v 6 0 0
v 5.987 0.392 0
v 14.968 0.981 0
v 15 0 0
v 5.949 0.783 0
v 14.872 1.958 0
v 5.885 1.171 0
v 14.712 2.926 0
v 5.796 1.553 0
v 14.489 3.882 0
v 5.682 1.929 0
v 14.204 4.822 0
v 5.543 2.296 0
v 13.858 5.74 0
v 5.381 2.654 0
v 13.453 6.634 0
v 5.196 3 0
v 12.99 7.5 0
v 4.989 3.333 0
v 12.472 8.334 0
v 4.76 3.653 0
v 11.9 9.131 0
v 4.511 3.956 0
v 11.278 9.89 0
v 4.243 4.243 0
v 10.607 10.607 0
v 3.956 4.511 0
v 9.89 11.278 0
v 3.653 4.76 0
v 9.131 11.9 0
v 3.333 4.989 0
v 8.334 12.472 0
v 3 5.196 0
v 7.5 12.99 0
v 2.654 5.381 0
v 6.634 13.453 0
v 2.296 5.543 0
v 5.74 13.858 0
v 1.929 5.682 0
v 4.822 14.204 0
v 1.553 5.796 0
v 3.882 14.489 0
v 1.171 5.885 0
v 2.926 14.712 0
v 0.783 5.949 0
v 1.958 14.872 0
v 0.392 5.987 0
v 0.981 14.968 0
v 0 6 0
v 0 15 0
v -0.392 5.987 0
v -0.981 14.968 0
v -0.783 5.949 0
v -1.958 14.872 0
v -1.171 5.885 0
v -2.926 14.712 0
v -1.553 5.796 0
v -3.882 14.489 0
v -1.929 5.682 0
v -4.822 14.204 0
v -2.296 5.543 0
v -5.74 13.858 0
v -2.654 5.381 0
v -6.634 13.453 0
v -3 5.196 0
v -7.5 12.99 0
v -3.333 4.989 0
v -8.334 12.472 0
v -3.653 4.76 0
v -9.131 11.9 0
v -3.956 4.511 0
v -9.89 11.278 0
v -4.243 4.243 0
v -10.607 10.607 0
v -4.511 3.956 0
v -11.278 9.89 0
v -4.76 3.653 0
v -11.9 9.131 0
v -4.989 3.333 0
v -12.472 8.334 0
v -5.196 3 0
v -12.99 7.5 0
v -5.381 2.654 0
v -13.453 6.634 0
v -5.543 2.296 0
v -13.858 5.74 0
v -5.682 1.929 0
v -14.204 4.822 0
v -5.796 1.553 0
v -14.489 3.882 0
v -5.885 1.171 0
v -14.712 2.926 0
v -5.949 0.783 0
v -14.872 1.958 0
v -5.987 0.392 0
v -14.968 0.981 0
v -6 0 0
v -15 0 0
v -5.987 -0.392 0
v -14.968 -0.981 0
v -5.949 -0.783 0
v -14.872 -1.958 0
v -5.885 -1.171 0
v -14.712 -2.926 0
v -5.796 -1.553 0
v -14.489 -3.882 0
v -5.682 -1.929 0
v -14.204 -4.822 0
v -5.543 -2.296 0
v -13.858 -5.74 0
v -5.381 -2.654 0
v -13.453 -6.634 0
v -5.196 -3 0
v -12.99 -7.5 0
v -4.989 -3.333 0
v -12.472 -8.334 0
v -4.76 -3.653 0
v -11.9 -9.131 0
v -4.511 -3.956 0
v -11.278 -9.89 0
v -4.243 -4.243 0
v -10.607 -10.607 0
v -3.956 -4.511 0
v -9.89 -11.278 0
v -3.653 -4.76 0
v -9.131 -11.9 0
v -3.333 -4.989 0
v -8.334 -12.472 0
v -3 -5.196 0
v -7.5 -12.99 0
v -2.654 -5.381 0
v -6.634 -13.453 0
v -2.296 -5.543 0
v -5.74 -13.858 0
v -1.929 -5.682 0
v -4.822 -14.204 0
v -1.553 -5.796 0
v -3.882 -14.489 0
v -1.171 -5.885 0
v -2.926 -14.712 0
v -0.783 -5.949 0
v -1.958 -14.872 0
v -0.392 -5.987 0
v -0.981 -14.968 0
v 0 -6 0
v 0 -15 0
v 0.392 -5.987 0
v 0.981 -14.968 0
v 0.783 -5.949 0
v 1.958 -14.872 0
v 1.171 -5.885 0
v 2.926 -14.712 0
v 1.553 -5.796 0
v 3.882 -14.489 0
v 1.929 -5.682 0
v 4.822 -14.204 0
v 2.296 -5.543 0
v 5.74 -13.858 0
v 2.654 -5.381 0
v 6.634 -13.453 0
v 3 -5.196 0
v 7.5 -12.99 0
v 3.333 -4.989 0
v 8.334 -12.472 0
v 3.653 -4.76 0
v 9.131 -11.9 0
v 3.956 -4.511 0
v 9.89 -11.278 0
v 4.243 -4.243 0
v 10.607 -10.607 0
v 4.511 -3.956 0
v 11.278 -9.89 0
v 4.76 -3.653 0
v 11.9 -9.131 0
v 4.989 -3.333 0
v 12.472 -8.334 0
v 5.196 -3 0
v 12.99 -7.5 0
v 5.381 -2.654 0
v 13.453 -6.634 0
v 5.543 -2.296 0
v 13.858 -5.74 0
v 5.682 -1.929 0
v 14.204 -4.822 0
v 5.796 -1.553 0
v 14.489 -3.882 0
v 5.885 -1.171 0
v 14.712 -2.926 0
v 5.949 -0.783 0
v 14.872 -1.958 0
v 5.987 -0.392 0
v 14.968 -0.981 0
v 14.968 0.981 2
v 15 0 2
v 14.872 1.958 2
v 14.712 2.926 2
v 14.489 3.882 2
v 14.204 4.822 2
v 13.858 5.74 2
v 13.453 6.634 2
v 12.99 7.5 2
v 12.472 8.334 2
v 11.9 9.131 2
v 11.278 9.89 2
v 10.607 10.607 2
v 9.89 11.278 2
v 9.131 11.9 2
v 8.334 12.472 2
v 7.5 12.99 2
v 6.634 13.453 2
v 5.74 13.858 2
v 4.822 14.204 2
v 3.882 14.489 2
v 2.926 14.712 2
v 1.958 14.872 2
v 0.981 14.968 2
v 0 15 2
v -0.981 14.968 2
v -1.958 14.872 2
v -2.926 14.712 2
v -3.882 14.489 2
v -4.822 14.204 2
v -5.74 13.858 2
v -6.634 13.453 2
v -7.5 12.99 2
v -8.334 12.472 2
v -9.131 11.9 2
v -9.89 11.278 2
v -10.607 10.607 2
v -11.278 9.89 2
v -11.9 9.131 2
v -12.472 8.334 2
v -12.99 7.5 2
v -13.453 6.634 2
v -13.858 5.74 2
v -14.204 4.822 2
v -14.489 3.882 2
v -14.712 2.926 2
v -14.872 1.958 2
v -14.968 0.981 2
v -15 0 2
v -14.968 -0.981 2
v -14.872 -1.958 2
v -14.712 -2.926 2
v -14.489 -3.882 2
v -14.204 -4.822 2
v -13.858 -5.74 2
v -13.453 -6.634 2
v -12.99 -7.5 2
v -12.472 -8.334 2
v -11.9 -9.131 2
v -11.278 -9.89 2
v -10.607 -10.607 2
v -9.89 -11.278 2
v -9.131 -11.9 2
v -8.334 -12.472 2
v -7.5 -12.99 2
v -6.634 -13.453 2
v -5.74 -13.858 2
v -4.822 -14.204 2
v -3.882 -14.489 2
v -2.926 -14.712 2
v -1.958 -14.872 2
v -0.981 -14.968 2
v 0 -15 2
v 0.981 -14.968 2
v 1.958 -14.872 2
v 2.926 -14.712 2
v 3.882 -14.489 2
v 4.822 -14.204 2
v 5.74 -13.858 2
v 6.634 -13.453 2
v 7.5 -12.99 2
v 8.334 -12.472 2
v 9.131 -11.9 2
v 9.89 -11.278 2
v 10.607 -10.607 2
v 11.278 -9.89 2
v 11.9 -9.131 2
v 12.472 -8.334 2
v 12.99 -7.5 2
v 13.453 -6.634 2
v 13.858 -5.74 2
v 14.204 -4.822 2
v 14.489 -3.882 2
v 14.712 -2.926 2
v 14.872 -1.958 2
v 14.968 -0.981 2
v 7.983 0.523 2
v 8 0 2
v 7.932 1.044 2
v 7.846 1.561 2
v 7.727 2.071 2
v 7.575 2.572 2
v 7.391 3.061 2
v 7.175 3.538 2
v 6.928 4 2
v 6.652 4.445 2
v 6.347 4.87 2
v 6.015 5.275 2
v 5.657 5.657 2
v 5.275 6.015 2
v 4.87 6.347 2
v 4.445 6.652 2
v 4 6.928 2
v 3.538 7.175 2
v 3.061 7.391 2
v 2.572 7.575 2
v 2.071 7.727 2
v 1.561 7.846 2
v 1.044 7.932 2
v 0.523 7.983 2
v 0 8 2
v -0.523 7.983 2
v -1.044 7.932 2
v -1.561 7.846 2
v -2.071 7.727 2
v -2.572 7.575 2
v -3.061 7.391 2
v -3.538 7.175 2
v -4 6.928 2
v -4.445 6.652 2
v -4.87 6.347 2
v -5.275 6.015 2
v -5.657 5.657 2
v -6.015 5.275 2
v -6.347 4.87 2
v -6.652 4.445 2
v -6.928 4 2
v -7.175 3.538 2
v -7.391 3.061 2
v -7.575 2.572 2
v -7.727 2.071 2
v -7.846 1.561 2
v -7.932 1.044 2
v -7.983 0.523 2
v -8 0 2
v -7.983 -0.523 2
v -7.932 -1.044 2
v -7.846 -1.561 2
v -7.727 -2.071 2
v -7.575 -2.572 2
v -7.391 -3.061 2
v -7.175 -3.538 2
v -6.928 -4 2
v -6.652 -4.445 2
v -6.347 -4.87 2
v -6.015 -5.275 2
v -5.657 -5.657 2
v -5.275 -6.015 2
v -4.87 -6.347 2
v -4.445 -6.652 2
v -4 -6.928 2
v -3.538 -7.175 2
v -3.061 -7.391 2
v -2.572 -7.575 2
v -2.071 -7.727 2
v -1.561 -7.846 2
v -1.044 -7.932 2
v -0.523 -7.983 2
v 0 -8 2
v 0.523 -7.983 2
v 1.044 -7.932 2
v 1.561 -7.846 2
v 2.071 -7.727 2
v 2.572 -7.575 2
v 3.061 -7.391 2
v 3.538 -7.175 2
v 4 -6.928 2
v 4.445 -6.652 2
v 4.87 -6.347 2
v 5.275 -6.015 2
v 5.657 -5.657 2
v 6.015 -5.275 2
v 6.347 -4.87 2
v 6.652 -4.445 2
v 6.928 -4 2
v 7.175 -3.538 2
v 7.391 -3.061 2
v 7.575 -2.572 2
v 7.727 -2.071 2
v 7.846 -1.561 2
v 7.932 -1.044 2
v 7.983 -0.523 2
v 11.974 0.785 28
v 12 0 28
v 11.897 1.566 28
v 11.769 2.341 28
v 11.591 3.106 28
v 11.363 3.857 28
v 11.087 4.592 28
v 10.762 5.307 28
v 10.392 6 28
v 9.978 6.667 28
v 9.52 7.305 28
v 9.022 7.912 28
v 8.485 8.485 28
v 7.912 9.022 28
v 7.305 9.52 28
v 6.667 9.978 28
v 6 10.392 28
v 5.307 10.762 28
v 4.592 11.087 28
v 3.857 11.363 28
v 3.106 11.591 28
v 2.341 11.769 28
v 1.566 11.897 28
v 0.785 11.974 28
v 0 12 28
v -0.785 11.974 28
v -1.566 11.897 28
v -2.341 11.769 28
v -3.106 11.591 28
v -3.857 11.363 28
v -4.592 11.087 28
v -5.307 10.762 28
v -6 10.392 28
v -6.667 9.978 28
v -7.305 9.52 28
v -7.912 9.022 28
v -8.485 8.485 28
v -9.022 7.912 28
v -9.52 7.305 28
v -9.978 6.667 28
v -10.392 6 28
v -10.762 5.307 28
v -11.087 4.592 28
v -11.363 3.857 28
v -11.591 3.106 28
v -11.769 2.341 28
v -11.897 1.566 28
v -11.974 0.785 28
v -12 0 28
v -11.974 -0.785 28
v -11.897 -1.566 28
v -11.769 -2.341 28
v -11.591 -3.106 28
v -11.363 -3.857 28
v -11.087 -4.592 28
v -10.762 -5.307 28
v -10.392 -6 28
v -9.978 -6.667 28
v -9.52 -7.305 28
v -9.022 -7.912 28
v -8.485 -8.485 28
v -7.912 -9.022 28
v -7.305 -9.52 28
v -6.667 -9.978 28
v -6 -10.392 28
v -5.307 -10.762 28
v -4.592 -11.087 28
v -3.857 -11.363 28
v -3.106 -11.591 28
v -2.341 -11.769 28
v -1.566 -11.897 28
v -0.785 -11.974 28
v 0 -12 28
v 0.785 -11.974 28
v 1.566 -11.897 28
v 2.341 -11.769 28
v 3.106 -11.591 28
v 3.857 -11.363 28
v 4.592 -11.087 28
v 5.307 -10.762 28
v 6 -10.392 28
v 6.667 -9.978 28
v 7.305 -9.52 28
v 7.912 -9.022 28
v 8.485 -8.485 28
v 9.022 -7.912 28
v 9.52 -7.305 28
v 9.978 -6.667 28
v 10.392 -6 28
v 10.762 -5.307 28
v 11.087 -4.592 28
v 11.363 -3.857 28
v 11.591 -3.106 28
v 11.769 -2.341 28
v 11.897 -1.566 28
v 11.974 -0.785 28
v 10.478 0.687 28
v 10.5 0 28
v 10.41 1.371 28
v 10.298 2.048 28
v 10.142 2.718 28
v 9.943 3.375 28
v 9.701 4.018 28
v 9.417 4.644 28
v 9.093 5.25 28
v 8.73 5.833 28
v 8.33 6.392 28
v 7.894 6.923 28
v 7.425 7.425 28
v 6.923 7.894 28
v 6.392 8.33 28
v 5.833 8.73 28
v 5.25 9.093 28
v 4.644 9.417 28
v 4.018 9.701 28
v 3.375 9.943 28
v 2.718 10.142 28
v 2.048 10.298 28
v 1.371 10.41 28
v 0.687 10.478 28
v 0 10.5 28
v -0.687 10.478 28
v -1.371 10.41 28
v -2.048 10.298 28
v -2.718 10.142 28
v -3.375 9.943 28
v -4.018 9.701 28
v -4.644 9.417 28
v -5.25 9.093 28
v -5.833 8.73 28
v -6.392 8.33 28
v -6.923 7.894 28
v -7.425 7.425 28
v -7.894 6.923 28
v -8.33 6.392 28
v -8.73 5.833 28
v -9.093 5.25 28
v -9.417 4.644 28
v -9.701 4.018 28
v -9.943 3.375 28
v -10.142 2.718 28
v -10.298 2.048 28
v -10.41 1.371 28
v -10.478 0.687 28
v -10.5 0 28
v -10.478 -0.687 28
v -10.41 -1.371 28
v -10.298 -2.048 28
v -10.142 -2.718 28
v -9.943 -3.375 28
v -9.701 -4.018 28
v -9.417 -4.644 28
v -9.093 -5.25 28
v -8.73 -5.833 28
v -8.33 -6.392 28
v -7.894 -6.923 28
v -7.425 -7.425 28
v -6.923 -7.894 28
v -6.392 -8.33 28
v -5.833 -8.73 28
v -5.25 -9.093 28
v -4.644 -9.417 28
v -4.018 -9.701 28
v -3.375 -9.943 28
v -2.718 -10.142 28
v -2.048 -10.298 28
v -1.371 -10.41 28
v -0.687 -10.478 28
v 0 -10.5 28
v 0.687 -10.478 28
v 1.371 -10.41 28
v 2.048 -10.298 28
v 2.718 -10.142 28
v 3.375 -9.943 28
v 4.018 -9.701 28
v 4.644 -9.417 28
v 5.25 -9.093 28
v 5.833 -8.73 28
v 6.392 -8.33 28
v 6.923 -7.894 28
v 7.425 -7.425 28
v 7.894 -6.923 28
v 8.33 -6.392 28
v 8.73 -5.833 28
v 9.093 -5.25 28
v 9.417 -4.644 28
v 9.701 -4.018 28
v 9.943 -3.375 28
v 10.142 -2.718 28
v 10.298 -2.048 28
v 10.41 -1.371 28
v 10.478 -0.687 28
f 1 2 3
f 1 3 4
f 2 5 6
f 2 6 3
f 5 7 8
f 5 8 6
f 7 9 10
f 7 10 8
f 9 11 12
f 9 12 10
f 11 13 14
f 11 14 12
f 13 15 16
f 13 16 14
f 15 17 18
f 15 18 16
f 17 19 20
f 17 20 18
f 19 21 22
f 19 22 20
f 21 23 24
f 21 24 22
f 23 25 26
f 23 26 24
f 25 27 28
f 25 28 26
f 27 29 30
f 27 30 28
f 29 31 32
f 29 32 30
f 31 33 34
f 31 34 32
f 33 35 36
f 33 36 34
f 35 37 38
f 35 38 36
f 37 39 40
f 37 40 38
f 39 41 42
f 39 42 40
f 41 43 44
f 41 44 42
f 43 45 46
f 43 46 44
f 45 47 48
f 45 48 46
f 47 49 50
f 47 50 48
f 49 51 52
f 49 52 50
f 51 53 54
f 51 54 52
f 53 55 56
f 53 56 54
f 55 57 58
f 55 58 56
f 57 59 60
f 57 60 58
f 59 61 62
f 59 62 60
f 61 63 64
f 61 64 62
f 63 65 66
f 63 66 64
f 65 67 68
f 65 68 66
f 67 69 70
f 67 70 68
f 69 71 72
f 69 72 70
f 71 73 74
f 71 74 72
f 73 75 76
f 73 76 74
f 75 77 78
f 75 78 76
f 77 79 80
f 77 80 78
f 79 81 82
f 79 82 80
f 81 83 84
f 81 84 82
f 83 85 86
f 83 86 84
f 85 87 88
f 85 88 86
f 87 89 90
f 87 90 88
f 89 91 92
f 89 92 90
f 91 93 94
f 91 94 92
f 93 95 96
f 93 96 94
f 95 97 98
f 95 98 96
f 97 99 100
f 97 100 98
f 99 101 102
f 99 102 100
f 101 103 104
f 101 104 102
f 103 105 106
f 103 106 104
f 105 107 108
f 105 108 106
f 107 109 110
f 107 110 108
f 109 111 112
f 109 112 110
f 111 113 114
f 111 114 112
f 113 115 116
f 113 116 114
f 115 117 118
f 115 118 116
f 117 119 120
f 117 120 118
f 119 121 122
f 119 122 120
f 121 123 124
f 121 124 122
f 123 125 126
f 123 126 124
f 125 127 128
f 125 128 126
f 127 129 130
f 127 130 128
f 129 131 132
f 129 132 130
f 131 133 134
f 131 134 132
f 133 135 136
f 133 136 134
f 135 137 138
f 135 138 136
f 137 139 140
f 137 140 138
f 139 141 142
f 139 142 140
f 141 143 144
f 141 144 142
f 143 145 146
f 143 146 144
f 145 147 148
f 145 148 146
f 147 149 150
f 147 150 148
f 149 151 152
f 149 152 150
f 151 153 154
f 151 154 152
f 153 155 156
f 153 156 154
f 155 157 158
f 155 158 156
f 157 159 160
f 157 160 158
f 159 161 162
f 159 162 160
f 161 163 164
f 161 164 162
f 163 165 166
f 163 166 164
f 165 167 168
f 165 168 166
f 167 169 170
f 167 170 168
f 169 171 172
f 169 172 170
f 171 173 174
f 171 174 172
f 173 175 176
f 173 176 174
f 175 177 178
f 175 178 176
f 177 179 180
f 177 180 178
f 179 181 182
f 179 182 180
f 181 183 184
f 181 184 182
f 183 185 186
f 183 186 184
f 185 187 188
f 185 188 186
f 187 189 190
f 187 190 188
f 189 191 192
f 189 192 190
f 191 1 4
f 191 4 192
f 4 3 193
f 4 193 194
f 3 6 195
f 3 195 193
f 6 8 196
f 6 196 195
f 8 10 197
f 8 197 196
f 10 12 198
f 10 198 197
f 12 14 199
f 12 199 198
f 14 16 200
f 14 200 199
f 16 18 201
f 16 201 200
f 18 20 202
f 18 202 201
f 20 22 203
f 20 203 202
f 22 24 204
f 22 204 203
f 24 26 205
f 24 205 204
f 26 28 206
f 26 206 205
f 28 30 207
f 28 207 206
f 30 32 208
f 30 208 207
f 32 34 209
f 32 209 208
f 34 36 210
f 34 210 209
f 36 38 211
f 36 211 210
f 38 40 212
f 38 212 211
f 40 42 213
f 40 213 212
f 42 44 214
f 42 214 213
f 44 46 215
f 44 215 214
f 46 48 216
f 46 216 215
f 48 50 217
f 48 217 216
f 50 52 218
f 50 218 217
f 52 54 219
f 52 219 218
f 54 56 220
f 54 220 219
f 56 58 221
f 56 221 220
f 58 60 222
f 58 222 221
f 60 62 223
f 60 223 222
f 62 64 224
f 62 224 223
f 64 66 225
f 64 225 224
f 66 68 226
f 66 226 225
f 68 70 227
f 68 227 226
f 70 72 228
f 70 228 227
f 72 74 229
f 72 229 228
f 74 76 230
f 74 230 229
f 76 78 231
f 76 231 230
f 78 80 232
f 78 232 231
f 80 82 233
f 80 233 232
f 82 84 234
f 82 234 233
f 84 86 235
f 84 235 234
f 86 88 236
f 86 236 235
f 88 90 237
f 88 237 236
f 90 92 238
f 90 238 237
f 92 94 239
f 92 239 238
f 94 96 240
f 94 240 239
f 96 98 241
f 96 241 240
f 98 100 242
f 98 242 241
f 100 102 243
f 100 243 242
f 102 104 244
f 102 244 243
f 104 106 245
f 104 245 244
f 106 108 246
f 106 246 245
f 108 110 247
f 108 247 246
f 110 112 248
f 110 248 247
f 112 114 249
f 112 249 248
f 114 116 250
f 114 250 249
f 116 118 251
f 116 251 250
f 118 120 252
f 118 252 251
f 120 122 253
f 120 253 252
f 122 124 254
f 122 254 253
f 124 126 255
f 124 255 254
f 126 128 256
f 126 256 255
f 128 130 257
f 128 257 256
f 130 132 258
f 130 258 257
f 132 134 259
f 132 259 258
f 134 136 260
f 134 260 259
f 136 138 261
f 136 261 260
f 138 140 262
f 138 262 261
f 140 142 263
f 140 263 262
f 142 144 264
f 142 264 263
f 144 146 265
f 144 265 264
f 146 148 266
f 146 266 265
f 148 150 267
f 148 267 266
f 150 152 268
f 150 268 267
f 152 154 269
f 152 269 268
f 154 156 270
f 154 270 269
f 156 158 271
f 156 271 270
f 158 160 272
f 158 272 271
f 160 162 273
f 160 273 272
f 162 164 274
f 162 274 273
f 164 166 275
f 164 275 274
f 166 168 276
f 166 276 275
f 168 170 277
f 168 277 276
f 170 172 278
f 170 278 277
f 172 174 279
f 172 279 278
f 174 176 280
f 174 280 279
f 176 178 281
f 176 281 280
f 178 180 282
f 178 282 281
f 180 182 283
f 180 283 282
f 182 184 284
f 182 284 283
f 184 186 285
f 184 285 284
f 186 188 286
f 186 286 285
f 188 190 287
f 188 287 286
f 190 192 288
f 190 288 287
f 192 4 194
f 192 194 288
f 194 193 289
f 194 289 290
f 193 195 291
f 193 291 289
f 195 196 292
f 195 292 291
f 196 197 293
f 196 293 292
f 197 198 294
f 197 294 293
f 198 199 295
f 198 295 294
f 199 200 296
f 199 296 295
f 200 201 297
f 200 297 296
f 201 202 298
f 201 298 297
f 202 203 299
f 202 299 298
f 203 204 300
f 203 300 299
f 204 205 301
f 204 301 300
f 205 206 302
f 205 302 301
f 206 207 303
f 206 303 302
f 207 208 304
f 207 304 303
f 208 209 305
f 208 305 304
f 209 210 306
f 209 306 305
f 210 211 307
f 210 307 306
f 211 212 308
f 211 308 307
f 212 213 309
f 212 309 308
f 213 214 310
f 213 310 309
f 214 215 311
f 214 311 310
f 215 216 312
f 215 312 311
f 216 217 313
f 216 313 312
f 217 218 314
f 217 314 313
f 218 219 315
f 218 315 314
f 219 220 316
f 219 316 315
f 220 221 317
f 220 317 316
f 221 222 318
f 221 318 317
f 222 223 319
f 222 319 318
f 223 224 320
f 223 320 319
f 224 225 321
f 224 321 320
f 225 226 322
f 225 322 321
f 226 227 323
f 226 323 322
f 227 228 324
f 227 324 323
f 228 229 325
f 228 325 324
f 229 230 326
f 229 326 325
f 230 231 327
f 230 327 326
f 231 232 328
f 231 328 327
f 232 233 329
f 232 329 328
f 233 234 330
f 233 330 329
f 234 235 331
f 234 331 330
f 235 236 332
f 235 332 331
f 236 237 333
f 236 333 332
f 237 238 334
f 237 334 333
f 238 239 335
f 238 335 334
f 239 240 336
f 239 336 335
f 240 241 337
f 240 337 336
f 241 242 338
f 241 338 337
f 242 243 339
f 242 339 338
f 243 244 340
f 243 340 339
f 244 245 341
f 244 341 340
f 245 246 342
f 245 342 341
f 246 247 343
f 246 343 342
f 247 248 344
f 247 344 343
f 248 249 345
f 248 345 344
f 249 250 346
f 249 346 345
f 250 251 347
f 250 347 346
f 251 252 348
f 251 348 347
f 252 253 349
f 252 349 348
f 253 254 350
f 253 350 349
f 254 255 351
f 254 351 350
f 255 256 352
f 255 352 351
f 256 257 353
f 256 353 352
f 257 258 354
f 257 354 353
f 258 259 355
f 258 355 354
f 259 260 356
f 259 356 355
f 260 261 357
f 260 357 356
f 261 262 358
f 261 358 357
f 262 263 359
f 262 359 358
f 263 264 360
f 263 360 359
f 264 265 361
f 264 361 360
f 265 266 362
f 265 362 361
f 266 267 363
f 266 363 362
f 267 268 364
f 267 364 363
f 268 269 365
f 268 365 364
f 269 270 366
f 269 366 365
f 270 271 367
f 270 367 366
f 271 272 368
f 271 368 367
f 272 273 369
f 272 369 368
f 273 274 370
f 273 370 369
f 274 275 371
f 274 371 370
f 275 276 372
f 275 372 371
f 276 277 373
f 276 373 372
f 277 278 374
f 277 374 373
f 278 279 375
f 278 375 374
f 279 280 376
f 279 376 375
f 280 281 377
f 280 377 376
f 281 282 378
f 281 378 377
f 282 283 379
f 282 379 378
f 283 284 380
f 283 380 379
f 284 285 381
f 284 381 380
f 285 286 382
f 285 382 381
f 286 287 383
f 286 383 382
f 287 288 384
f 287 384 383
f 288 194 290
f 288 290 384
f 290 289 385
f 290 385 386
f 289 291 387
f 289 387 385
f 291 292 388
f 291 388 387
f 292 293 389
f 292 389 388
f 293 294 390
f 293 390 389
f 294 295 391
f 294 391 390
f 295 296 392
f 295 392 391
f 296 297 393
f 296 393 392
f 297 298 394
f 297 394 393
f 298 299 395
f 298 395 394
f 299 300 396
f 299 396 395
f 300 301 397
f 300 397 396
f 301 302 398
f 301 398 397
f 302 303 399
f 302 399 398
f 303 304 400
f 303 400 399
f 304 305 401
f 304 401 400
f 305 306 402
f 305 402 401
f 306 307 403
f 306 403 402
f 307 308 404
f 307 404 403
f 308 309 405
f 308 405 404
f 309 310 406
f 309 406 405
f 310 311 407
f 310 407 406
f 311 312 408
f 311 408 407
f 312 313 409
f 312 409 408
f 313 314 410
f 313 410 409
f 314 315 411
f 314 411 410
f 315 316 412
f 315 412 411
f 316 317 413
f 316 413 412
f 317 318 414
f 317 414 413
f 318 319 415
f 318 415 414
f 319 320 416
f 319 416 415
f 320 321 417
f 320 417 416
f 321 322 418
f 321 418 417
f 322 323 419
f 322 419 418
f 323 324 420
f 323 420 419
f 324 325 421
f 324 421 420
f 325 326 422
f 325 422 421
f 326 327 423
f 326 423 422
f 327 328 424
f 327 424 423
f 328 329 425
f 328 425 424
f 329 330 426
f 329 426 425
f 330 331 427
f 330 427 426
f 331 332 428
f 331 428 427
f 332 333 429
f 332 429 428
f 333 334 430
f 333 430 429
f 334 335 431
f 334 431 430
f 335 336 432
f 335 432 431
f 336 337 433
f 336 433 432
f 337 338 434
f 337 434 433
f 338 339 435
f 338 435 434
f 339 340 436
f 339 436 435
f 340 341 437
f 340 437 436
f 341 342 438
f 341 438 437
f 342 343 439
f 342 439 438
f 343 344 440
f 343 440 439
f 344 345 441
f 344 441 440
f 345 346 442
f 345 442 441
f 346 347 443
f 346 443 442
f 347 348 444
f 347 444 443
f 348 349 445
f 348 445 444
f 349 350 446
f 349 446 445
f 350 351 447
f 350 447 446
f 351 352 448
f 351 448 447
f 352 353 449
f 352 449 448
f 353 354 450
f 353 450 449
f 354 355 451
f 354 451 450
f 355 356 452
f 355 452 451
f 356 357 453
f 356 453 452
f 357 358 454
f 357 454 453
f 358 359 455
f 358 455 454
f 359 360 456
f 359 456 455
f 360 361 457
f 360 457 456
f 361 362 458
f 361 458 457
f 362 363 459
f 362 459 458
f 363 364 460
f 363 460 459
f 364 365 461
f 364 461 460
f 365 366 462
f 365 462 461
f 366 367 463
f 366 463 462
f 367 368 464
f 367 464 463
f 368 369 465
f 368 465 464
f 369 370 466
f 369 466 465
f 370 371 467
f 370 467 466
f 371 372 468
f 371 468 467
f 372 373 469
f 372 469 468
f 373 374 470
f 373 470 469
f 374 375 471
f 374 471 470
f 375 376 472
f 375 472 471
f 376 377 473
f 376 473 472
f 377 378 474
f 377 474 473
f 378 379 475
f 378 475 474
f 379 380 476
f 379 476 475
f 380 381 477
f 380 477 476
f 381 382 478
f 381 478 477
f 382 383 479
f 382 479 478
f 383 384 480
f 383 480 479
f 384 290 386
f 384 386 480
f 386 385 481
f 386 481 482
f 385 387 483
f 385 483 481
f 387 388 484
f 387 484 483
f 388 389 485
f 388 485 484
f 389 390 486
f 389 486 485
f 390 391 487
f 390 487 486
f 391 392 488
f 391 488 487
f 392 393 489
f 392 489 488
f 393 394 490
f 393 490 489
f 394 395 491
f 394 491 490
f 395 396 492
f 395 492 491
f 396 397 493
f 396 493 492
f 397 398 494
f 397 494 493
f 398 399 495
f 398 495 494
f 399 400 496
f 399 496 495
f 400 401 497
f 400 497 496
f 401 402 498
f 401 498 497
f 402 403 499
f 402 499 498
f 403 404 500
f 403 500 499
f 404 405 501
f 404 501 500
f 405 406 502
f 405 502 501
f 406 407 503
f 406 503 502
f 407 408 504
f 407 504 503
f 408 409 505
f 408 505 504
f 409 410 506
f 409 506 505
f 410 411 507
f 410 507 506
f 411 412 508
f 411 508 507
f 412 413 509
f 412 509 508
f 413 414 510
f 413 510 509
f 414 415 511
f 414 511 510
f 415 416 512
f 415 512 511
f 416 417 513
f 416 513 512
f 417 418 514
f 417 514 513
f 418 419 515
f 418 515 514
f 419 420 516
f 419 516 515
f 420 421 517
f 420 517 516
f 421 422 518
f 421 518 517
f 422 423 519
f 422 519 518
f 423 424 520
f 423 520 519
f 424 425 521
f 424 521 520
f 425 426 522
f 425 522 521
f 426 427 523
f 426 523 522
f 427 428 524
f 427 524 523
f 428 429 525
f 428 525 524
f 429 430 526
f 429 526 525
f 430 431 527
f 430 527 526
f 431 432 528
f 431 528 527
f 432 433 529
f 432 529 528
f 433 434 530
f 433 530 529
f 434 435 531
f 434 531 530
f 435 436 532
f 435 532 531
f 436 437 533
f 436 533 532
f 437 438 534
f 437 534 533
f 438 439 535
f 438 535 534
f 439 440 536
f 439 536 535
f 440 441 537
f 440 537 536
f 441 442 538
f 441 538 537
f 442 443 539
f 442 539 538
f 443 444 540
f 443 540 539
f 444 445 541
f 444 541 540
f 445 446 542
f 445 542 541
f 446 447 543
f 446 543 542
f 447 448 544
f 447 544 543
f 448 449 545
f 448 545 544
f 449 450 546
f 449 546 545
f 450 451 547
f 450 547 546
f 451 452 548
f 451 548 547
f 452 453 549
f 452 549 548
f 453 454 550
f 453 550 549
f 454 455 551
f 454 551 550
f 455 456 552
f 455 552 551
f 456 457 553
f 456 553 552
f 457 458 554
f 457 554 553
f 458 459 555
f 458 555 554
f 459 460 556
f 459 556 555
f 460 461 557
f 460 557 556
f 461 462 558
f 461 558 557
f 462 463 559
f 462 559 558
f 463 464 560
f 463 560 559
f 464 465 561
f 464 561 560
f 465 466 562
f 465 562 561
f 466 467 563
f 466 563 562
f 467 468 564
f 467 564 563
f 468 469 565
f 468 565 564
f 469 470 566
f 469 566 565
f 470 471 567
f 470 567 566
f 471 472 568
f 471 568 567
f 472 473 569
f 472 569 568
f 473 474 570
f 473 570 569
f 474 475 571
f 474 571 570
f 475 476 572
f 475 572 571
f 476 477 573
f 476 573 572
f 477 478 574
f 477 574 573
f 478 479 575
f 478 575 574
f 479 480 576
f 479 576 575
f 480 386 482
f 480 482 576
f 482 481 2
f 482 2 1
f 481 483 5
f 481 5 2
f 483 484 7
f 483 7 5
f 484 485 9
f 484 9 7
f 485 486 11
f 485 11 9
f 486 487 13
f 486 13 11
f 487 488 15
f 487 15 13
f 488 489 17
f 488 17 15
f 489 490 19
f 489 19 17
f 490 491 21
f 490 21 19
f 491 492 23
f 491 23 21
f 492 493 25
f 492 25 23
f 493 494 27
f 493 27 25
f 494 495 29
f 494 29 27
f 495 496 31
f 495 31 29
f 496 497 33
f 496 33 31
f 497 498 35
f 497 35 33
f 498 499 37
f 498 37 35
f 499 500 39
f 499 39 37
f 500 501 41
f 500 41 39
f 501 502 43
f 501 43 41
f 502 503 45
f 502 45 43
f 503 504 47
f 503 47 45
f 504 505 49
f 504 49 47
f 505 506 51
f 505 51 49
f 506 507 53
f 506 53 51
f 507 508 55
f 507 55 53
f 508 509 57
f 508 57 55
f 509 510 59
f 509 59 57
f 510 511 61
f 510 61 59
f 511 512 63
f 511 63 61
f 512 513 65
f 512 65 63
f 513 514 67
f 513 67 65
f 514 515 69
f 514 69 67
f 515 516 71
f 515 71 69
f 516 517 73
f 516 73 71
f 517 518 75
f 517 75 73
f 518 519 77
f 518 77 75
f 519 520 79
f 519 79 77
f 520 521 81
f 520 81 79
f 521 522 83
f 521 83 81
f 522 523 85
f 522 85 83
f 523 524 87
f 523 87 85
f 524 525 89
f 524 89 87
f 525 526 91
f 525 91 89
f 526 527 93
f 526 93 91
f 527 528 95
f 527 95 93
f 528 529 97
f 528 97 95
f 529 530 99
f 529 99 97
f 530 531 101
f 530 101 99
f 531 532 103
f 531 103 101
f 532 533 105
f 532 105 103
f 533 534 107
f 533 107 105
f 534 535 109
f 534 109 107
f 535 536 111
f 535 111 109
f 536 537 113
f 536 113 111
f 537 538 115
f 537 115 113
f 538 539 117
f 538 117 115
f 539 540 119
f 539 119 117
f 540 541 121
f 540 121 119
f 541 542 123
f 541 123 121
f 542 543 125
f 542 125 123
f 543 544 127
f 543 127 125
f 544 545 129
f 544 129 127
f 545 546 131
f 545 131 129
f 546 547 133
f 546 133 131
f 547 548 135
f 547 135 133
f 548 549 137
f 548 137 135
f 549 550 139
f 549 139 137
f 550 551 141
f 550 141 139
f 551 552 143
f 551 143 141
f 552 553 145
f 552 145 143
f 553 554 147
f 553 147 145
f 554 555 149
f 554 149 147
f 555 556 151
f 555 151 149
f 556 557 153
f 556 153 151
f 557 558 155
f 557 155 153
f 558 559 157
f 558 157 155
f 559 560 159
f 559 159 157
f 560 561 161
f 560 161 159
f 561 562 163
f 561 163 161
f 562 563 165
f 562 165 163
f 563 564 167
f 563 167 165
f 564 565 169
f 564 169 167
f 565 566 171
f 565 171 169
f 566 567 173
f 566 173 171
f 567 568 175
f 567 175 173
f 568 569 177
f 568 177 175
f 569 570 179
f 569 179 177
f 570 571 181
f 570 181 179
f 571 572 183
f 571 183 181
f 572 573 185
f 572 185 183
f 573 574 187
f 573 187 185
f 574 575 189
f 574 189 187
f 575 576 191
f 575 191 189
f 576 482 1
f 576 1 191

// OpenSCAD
// Original MechIntel educational model. CC0-1.0. Units: mm.
// Not a standardized or load-rated component.
$fn=96;
// Section points: [radius, height], mm. Edit to change the profile.
section=[[6, 0], [15, 0], [15, 2], [8, 2], [12, 28], [10.5, 28]];
rotate_extrude($fn=96) polygon(points=section);
